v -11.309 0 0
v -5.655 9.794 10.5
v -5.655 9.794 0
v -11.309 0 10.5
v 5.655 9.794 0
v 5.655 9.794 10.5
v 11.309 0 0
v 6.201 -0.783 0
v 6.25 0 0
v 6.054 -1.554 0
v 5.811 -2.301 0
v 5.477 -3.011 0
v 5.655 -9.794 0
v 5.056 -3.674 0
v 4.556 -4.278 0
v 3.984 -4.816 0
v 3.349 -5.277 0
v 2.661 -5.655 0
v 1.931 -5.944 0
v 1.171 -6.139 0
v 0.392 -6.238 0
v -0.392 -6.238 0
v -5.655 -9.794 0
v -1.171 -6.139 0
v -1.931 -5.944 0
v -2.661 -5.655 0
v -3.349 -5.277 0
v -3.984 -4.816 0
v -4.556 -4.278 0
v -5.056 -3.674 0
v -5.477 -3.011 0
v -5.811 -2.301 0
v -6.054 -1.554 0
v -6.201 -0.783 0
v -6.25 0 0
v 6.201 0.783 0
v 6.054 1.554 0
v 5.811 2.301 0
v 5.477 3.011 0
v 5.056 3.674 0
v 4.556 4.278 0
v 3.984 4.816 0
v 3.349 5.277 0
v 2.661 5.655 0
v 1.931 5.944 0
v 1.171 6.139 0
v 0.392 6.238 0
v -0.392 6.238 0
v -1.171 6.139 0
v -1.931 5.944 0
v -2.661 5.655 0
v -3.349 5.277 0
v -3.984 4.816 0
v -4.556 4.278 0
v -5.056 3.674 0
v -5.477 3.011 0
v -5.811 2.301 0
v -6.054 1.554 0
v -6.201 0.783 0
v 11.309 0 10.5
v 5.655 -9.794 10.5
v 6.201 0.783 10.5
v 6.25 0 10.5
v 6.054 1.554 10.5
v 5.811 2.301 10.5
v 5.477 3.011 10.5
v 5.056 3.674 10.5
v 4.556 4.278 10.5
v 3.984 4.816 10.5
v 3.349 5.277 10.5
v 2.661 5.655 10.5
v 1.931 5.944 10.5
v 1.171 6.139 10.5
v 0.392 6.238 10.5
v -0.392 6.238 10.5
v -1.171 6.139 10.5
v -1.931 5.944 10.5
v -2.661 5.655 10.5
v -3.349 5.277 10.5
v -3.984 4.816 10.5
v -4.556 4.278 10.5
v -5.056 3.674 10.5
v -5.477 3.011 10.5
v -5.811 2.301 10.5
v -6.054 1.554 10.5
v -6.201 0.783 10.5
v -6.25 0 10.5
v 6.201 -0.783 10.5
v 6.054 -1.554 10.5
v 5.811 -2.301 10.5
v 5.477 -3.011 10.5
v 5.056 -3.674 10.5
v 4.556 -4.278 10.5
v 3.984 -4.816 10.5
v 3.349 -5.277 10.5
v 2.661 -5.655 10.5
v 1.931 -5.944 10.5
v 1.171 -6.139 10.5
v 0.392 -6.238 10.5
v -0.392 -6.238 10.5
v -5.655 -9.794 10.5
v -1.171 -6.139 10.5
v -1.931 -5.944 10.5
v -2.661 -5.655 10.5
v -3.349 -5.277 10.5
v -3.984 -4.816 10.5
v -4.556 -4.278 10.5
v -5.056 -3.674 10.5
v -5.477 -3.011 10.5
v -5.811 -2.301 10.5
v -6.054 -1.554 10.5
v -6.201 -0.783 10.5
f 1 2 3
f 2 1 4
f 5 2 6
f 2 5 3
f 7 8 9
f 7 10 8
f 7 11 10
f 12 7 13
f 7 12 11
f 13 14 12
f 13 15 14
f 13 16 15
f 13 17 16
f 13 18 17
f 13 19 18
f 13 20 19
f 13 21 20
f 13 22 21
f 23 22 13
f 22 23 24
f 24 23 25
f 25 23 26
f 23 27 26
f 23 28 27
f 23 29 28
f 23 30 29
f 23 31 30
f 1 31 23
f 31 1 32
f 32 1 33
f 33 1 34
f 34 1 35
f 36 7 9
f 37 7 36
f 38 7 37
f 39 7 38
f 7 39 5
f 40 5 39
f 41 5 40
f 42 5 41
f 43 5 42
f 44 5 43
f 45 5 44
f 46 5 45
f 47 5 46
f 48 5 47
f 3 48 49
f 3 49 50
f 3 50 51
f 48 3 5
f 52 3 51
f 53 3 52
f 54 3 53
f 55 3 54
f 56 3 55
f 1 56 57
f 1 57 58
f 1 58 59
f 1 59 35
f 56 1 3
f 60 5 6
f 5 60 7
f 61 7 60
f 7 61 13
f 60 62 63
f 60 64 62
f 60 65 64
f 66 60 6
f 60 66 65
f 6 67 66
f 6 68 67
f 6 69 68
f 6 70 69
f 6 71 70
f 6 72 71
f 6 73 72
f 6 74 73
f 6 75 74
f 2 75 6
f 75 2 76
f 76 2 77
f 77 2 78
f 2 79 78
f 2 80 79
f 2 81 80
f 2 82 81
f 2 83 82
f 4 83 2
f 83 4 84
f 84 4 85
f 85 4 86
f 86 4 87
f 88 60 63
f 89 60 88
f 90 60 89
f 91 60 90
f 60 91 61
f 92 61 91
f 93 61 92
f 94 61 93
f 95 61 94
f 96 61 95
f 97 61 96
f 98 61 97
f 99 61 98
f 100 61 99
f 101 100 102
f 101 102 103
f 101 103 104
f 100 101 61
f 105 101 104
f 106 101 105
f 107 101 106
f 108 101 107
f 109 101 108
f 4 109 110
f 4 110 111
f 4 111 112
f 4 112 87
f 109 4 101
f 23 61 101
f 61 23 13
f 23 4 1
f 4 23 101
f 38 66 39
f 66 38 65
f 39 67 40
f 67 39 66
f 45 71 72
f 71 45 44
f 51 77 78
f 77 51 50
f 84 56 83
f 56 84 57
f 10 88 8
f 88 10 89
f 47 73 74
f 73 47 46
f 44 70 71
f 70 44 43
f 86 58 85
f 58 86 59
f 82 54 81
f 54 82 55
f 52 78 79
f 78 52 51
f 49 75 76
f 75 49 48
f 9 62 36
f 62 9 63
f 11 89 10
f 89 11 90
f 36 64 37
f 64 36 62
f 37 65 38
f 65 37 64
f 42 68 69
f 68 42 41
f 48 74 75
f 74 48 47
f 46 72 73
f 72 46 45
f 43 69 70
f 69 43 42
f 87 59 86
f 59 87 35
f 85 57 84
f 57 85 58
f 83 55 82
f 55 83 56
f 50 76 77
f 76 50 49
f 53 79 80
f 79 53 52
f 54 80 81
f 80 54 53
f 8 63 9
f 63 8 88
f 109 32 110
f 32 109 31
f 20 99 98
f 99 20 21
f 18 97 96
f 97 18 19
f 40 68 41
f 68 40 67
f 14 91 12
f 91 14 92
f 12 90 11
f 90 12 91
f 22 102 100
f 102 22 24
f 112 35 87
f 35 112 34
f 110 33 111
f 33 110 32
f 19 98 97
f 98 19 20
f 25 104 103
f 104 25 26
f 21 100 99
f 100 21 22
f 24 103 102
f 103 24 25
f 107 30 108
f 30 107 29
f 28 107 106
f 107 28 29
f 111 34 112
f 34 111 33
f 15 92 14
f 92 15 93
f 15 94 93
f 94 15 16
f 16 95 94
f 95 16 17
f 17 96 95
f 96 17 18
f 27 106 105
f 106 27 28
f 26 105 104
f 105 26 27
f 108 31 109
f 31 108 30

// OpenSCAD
$fn = 50;


difference() {
	union() {
		translate(v = [0, 0, 0]) {
			rotate(a = [0, 0, 0]) {
				translate(v = [0, 0, 0]) {
					rotate(a = [0, 0, 0]) {
						linear_extrude(height = 10.5000000000) {
							polygon(points = [[11.3092000000, 0.0000000000], [5.6546000000, 9.7940544965], [-5.6546000000, 9.7940544965], [-11.3092000000, 0.0000000000], [-5.6546000000, -9.7940544965], [5.6546000000, -9.7940544965]]);
						}
					}
				}
			}
		}
		#translate(v = [-1.7500000000, -3.2500000000, 10.5000000000]) {
			rotate(a = [0, 0, 0]) {
				cube(size = [3.5000000000, 6.5000000000, 0.3000000000]);
			}
		}
		#translate(v = [-1.7500000000, -1.7500000000, 10.8000000000]) {
			rotate(a = [0, 0, 0]) {
				cube(size = [3.5000000000, 3.5000000000, 0.3000000000]);
			}
		}
		#translate(v = [-1.7500000000, -3.2500000000, -0.3000000000]) {
			rotate(a = [0, 0, 0]) {
				cube(size = [3.5000000000, 6.5000000000, 0.3000000000]);
			}
		}
		#translate(v = [-1.7500000000, -1.7500000000, -0.6000000000]) {
			rotate(a = [0, 0, 0]) {
				cube(size = [3.5000000000, 3.5000000000, 0.3000000000]);
			}
		}
	}
	union() {
		translate(v = [0, 0, -10]) {
			rotate(a = [0, 0, 0]) {
				cylinder(h = 100, r = 6.2500000000);
			}
		}
	}
}
